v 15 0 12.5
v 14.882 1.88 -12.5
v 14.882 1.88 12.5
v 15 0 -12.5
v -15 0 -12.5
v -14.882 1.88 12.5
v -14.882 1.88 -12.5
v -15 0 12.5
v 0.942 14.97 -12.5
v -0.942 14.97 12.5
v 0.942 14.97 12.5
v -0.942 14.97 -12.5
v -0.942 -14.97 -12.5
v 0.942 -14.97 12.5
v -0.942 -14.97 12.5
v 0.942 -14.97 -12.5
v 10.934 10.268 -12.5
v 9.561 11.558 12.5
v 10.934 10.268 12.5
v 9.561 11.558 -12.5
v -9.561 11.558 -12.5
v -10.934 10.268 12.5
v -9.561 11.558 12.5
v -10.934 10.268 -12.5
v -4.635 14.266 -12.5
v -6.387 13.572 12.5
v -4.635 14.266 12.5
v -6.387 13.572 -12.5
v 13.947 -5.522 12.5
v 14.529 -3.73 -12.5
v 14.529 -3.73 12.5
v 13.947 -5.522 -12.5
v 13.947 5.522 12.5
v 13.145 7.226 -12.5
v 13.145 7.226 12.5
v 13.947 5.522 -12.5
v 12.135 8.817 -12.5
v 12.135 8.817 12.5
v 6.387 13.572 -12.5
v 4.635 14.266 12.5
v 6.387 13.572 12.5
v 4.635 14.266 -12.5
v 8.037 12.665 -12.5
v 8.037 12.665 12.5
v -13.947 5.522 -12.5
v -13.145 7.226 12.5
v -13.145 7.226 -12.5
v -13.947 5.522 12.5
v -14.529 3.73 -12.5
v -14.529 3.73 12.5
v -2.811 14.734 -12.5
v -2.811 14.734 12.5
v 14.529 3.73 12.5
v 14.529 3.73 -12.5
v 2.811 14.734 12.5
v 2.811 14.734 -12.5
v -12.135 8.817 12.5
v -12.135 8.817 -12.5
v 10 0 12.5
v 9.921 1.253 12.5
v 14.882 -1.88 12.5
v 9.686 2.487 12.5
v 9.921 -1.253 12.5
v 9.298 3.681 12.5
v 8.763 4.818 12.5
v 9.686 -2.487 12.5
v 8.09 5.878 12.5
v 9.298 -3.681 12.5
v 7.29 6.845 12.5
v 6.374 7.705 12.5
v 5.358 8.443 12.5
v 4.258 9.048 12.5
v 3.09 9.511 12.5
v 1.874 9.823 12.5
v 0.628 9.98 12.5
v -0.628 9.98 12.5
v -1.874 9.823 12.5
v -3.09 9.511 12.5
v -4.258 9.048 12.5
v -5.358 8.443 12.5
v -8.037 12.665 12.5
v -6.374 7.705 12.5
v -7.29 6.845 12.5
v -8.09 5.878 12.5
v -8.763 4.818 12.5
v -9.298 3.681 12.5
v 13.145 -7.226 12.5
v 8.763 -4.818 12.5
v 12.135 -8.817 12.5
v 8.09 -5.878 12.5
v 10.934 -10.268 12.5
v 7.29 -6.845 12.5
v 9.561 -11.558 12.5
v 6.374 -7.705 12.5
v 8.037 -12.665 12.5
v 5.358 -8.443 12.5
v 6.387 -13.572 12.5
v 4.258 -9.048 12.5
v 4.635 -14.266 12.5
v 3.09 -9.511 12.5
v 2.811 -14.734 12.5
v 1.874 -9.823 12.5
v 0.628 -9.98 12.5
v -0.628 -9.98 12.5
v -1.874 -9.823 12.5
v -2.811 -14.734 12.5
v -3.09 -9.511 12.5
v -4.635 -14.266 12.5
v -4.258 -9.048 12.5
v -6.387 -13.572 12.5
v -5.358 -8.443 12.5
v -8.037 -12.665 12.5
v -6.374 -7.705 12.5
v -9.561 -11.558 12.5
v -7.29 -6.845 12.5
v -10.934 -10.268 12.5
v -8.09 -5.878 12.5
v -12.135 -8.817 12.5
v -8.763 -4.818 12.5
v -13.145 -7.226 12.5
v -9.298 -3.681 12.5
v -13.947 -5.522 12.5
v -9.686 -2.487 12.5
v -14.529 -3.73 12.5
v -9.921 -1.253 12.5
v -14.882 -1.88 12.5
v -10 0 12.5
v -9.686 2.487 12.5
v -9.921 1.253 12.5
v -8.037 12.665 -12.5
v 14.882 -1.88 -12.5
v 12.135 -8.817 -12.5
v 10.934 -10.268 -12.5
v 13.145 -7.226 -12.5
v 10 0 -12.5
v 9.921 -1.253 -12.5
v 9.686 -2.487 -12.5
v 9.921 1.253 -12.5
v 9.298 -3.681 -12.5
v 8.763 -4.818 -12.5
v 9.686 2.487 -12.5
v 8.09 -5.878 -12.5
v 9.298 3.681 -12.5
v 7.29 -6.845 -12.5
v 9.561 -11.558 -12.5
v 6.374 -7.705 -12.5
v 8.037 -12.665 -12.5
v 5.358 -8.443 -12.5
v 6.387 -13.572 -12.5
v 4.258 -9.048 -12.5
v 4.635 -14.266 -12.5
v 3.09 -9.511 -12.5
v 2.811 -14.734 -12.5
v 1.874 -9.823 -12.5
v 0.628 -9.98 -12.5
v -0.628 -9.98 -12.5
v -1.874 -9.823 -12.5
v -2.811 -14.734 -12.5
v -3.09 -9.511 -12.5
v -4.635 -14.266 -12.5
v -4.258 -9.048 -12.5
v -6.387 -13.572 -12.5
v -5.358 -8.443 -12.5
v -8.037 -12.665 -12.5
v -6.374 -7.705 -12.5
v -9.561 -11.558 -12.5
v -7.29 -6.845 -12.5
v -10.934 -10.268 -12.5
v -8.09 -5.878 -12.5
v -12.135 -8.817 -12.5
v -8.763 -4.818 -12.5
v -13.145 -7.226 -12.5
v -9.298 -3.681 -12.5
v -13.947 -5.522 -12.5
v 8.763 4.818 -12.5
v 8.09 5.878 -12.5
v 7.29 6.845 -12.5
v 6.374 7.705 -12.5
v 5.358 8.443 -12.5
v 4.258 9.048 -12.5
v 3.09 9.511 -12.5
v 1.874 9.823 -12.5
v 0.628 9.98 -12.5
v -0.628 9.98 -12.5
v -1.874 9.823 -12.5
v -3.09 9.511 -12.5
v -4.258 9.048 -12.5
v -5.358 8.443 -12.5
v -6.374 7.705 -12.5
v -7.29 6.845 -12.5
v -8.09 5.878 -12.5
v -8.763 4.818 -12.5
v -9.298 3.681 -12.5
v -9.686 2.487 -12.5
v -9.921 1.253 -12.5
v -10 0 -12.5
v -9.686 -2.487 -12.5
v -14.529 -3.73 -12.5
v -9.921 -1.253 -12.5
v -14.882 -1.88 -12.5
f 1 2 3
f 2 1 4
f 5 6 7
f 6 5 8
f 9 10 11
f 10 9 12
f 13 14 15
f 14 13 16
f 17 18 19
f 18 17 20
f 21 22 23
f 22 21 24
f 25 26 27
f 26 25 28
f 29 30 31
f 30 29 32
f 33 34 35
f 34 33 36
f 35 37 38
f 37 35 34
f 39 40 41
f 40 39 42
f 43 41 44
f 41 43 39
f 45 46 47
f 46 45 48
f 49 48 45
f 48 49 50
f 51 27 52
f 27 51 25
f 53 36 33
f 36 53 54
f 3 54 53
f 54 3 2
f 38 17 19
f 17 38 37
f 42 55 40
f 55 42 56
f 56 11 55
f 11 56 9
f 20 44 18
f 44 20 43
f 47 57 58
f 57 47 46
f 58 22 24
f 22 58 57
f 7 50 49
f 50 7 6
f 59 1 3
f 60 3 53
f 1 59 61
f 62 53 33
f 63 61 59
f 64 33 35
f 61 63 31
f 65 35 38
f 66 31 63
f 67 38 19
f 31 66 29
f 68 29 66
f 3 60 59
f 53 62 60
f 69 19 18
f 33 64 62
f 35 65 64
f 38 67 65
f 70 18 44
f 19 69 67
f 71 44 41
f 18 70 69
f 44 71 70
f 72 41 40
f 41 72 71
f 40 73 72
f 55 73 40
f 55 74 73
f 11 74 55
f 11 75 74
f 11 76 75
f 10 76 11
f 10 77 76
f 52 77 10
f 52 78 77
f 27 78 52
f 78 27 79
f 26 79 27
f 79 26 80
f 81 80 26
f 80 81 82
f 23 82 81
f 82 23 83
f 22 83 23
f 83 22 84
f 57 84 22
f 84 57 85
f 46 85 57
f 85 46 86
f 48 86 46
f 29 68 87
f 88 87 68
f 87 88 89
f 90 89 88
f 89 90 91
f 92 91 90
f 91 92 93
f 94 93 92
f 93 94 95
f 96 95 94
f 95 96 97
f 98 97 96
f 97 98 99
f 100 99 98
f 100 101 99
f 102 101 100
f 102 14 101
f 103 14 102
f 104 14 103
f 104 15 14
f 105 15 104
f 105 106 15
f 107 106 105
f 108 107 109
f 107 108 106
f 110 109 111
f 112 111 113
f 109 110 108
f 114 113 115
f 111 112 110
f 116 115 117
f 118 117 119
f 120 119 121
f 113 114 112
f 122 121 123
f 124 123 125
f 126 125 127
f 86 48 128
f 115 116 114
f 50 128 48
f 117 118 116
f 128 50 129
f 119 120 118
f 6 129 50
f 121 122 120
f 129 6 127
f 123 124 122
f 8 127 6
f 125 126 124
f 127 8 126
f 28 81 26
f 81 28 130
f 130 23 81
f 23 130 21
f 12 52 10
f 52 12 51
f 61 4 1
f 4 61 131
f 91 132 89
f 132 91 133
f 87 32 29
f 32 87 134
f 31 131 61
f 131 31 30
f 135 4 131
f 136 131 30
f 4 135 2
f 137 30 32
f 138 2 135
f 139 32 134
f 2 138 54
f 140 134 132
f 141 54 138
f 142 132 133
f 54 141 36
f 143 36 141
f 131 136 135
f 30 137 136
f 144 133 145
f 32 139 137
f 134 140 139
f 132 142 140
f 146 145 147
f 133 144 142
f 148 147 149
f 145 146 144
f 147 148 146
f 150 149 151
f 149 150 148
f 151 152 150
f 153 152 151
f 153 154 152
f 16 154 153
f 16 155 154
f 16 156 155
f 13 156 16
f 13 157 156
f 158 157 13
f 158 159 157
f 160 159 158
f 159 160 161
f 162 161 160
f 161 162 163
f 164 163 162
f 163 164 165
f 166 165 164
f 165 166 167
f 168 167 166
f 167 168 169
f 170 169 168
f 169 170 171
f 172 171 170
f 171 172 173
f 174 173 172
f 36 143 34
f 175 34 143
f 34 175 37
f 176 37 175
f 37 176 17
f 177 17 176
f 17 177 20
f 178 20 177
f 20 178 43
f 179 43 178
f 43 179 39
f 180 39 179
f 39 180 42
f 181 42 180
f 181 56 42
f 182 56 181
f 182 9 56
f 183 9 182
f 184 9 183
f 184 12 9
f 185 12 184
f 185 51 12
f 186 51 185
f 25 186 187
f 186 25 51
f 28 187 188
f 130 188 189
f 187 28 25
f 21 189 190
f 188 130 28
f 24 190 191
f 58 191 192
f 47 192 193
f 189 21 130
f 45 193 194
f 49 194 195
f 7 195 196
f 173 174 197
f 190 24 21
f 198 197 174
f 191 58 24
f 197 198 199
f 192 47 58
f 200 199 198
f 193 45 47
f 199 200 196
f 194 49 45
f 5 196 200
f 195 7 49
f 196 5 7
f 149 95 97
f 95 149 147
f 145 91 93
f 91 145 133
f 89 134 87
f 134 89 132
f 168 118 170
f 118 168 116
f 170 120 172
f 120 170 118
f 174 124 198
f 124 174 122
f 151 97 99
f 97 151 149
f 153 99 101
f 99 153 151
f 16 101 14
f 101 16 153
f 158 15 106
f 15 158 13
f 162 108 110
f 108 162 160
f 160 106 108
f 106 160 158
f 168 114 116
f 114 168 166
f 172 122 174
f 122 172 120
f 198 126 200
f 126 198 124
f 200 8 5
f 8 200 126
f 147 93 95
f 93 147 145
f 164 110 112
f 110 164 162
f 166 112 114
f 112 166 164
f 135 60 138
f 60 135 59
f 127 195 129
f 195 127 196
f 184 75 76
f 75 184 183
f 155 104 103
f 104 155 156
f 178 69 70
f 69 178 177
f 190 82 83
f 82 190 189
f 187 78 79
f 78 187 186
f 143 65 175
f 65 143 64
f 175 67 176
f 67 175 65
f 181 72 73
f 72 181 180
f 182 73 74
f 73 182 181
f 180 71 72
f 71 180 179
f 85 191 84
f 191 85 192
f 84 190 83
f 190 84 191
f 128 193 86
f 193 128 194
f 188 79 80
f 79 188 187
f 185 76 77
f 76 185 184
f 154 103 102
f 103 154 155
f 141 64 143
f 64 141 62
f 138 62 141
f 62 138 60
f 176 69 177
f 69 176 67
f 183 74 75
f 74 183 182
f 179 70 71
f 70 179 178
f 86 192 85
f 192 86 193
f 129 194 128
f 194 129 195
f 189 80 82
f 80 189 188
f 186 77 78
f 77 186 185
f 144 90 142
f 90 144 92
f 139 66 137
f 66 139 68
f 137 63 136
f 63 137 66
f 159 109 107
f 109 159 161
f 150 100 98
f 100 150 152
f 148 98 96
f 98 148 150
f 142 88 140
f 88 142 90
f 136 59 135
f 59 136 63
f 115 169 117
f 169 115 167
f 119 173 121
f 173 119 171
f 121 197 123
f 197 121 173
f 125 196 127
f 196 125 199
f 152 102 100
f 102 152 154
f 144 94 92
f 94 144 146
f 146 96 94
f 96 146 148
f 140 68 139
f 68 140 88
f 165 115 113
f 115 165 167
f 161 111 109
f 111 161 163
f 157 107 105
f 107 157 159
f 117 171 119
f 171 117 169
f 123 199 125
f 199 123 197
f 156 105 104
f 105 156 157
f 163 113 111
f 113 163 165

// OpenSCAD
$fn = 50;


difference() {
	union() {
		translate(v = [0, 0, -12.5000000000]) {
			cylinder(h = 25, r = 15.0000000000);
		}
	}
	union() {
		translate(v = [0, 0, -100.0000000000]) {
			cylinder(h = 200, r = 10);
		}
	}
}
